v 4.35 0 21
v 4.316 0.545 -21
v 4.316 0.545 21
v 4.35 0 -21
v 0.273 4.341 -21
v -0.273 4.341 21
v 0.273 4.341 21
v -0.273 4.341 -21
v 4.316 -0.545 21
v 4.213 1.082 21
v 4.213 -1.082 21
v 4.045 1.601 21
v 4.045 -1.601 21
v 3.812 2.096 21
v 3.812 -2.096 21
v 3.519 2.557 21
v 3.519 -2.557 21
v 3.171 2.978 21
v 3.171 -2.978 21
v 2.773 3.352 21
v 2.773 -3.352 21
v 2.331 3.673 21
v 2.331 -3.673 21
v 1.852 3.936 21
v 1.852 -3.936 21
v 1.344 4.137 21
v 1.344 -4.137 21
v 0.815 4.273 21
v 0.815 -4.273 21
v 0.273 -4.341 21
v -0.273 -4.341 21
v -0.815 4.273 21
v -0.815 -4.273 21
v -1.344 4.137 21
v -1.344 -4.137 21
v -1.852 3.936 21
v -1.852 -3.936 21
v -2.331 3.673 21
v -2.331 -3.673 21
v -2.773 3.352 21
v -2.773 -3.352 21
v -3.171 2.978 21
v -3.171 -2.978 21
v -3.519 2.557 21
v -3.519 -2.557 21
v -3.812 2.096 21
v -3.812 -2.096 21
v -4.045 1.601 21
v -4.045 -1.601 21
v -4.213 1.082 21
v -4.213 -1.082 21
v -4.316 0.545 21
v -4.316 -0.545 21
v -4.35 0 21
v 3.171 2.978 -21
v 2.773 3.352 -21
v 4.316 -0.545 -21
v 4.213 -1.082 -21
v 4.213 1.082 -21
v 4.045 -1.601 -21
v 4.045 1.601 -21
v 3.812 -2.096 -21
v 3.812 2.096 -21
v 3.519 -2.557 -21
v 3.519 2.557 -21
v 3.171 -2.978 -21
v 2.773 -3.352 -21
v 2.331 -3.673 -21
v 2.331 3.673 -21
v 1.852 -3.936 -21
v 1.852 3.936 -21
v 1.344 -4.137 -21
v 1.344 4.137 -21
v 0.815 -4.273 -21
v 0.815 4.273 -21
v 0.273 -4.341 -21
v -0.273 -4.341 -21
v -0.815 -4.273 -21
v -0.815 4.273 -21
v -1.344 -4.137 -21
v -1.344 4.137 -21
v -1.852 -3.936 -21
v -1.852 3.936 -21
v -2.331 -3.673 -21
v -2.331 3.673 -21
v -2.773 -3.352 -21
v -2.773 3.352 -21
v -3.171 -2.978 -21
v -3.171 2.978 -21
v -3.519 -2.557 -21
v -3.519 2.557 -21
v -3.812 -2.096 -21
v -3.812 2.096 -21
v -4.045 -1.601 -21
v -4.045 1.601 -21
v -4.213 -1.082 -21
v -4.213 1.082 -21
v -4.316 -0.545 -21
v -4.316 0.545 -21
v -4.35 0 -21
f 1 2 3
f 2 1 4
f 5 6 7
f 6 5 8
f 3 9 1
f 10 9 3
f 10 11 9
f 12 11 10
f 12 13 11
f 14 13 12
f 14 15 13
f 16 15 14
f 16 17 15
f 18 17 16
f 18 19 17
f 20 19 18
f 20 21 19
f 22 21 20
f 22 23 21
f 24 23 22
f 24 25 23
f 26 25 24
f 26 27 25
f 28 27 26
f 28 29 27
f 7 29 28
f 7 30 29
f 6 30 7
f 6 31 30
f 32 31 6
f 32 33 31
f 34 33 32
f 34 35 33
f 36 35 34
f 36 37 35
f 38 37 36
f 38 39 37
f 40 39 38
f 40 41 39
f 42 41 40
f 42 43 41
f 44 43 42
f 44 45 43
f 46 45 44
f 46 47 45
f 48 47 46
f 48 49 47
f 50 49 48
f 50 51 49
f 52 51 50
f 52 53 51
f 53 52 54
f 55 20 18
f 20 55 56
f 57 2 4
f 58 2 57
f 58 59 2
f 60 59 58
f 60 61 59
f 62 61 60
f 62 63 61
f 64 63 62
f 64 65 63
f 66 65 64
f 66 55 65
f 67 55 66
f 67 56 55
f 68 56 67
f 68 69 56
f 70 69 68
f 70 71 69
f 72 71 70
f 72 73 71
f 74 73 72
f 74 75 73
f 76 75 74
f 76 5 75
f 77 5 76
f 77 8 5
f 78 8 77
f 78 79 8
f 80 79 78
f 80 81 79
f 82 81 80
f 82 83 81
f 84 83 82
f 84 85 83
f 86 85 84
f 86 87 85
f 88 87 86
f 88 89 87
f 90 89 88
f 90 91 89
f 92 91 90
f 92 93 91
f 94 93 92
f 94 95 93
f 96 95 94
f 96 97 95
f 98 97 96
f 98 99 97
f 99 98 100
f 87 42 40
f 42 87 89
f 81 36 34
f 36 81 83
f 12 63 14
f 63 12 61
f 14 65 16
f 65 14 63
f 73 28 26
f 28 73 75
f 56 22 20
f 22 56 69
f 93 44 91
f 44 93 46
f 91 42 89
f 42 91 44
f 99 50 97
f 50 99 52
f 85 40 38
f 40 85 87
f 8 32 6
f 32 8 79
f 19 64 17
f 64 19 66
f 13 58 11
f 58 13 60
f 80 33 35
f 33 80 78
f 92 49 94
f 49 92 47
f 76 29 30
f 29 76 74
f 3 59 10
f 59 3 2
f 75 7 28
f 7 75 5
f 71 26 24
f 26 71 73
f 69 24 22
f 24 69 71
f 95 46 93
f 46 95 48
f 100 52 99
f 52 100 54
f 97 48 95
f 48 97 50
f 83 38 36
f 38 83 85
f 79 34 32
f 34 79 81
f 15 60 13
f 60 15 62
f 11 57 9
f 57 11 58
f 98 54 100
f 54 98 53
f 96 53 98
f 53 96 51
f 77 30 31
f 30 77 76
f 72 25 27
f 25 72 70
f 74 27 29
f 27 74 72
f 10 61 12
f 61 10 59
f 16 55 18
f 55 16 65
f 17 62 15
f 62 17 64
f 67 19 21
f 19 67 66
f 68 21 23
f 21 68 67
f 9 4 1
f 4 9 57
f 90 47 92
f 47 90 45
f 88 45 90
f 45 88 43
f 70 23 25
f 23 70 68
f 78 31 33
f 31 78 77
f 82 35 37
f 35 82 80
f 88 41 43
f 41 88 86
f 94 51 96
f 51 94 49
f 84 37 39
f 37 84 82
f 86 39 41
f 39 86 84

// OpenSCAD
$fn = 50;


difference() {
	union() {
		translate(v = [0, 0, -21.0000000000]) {
			cylinder(h = 42, r = 4.3500000000);
		}
	}
	union() {
		translate(v = [0, 0, -100.0000000000]) {
			cylinder(h = 200, r = 0);
		}
	}
}
